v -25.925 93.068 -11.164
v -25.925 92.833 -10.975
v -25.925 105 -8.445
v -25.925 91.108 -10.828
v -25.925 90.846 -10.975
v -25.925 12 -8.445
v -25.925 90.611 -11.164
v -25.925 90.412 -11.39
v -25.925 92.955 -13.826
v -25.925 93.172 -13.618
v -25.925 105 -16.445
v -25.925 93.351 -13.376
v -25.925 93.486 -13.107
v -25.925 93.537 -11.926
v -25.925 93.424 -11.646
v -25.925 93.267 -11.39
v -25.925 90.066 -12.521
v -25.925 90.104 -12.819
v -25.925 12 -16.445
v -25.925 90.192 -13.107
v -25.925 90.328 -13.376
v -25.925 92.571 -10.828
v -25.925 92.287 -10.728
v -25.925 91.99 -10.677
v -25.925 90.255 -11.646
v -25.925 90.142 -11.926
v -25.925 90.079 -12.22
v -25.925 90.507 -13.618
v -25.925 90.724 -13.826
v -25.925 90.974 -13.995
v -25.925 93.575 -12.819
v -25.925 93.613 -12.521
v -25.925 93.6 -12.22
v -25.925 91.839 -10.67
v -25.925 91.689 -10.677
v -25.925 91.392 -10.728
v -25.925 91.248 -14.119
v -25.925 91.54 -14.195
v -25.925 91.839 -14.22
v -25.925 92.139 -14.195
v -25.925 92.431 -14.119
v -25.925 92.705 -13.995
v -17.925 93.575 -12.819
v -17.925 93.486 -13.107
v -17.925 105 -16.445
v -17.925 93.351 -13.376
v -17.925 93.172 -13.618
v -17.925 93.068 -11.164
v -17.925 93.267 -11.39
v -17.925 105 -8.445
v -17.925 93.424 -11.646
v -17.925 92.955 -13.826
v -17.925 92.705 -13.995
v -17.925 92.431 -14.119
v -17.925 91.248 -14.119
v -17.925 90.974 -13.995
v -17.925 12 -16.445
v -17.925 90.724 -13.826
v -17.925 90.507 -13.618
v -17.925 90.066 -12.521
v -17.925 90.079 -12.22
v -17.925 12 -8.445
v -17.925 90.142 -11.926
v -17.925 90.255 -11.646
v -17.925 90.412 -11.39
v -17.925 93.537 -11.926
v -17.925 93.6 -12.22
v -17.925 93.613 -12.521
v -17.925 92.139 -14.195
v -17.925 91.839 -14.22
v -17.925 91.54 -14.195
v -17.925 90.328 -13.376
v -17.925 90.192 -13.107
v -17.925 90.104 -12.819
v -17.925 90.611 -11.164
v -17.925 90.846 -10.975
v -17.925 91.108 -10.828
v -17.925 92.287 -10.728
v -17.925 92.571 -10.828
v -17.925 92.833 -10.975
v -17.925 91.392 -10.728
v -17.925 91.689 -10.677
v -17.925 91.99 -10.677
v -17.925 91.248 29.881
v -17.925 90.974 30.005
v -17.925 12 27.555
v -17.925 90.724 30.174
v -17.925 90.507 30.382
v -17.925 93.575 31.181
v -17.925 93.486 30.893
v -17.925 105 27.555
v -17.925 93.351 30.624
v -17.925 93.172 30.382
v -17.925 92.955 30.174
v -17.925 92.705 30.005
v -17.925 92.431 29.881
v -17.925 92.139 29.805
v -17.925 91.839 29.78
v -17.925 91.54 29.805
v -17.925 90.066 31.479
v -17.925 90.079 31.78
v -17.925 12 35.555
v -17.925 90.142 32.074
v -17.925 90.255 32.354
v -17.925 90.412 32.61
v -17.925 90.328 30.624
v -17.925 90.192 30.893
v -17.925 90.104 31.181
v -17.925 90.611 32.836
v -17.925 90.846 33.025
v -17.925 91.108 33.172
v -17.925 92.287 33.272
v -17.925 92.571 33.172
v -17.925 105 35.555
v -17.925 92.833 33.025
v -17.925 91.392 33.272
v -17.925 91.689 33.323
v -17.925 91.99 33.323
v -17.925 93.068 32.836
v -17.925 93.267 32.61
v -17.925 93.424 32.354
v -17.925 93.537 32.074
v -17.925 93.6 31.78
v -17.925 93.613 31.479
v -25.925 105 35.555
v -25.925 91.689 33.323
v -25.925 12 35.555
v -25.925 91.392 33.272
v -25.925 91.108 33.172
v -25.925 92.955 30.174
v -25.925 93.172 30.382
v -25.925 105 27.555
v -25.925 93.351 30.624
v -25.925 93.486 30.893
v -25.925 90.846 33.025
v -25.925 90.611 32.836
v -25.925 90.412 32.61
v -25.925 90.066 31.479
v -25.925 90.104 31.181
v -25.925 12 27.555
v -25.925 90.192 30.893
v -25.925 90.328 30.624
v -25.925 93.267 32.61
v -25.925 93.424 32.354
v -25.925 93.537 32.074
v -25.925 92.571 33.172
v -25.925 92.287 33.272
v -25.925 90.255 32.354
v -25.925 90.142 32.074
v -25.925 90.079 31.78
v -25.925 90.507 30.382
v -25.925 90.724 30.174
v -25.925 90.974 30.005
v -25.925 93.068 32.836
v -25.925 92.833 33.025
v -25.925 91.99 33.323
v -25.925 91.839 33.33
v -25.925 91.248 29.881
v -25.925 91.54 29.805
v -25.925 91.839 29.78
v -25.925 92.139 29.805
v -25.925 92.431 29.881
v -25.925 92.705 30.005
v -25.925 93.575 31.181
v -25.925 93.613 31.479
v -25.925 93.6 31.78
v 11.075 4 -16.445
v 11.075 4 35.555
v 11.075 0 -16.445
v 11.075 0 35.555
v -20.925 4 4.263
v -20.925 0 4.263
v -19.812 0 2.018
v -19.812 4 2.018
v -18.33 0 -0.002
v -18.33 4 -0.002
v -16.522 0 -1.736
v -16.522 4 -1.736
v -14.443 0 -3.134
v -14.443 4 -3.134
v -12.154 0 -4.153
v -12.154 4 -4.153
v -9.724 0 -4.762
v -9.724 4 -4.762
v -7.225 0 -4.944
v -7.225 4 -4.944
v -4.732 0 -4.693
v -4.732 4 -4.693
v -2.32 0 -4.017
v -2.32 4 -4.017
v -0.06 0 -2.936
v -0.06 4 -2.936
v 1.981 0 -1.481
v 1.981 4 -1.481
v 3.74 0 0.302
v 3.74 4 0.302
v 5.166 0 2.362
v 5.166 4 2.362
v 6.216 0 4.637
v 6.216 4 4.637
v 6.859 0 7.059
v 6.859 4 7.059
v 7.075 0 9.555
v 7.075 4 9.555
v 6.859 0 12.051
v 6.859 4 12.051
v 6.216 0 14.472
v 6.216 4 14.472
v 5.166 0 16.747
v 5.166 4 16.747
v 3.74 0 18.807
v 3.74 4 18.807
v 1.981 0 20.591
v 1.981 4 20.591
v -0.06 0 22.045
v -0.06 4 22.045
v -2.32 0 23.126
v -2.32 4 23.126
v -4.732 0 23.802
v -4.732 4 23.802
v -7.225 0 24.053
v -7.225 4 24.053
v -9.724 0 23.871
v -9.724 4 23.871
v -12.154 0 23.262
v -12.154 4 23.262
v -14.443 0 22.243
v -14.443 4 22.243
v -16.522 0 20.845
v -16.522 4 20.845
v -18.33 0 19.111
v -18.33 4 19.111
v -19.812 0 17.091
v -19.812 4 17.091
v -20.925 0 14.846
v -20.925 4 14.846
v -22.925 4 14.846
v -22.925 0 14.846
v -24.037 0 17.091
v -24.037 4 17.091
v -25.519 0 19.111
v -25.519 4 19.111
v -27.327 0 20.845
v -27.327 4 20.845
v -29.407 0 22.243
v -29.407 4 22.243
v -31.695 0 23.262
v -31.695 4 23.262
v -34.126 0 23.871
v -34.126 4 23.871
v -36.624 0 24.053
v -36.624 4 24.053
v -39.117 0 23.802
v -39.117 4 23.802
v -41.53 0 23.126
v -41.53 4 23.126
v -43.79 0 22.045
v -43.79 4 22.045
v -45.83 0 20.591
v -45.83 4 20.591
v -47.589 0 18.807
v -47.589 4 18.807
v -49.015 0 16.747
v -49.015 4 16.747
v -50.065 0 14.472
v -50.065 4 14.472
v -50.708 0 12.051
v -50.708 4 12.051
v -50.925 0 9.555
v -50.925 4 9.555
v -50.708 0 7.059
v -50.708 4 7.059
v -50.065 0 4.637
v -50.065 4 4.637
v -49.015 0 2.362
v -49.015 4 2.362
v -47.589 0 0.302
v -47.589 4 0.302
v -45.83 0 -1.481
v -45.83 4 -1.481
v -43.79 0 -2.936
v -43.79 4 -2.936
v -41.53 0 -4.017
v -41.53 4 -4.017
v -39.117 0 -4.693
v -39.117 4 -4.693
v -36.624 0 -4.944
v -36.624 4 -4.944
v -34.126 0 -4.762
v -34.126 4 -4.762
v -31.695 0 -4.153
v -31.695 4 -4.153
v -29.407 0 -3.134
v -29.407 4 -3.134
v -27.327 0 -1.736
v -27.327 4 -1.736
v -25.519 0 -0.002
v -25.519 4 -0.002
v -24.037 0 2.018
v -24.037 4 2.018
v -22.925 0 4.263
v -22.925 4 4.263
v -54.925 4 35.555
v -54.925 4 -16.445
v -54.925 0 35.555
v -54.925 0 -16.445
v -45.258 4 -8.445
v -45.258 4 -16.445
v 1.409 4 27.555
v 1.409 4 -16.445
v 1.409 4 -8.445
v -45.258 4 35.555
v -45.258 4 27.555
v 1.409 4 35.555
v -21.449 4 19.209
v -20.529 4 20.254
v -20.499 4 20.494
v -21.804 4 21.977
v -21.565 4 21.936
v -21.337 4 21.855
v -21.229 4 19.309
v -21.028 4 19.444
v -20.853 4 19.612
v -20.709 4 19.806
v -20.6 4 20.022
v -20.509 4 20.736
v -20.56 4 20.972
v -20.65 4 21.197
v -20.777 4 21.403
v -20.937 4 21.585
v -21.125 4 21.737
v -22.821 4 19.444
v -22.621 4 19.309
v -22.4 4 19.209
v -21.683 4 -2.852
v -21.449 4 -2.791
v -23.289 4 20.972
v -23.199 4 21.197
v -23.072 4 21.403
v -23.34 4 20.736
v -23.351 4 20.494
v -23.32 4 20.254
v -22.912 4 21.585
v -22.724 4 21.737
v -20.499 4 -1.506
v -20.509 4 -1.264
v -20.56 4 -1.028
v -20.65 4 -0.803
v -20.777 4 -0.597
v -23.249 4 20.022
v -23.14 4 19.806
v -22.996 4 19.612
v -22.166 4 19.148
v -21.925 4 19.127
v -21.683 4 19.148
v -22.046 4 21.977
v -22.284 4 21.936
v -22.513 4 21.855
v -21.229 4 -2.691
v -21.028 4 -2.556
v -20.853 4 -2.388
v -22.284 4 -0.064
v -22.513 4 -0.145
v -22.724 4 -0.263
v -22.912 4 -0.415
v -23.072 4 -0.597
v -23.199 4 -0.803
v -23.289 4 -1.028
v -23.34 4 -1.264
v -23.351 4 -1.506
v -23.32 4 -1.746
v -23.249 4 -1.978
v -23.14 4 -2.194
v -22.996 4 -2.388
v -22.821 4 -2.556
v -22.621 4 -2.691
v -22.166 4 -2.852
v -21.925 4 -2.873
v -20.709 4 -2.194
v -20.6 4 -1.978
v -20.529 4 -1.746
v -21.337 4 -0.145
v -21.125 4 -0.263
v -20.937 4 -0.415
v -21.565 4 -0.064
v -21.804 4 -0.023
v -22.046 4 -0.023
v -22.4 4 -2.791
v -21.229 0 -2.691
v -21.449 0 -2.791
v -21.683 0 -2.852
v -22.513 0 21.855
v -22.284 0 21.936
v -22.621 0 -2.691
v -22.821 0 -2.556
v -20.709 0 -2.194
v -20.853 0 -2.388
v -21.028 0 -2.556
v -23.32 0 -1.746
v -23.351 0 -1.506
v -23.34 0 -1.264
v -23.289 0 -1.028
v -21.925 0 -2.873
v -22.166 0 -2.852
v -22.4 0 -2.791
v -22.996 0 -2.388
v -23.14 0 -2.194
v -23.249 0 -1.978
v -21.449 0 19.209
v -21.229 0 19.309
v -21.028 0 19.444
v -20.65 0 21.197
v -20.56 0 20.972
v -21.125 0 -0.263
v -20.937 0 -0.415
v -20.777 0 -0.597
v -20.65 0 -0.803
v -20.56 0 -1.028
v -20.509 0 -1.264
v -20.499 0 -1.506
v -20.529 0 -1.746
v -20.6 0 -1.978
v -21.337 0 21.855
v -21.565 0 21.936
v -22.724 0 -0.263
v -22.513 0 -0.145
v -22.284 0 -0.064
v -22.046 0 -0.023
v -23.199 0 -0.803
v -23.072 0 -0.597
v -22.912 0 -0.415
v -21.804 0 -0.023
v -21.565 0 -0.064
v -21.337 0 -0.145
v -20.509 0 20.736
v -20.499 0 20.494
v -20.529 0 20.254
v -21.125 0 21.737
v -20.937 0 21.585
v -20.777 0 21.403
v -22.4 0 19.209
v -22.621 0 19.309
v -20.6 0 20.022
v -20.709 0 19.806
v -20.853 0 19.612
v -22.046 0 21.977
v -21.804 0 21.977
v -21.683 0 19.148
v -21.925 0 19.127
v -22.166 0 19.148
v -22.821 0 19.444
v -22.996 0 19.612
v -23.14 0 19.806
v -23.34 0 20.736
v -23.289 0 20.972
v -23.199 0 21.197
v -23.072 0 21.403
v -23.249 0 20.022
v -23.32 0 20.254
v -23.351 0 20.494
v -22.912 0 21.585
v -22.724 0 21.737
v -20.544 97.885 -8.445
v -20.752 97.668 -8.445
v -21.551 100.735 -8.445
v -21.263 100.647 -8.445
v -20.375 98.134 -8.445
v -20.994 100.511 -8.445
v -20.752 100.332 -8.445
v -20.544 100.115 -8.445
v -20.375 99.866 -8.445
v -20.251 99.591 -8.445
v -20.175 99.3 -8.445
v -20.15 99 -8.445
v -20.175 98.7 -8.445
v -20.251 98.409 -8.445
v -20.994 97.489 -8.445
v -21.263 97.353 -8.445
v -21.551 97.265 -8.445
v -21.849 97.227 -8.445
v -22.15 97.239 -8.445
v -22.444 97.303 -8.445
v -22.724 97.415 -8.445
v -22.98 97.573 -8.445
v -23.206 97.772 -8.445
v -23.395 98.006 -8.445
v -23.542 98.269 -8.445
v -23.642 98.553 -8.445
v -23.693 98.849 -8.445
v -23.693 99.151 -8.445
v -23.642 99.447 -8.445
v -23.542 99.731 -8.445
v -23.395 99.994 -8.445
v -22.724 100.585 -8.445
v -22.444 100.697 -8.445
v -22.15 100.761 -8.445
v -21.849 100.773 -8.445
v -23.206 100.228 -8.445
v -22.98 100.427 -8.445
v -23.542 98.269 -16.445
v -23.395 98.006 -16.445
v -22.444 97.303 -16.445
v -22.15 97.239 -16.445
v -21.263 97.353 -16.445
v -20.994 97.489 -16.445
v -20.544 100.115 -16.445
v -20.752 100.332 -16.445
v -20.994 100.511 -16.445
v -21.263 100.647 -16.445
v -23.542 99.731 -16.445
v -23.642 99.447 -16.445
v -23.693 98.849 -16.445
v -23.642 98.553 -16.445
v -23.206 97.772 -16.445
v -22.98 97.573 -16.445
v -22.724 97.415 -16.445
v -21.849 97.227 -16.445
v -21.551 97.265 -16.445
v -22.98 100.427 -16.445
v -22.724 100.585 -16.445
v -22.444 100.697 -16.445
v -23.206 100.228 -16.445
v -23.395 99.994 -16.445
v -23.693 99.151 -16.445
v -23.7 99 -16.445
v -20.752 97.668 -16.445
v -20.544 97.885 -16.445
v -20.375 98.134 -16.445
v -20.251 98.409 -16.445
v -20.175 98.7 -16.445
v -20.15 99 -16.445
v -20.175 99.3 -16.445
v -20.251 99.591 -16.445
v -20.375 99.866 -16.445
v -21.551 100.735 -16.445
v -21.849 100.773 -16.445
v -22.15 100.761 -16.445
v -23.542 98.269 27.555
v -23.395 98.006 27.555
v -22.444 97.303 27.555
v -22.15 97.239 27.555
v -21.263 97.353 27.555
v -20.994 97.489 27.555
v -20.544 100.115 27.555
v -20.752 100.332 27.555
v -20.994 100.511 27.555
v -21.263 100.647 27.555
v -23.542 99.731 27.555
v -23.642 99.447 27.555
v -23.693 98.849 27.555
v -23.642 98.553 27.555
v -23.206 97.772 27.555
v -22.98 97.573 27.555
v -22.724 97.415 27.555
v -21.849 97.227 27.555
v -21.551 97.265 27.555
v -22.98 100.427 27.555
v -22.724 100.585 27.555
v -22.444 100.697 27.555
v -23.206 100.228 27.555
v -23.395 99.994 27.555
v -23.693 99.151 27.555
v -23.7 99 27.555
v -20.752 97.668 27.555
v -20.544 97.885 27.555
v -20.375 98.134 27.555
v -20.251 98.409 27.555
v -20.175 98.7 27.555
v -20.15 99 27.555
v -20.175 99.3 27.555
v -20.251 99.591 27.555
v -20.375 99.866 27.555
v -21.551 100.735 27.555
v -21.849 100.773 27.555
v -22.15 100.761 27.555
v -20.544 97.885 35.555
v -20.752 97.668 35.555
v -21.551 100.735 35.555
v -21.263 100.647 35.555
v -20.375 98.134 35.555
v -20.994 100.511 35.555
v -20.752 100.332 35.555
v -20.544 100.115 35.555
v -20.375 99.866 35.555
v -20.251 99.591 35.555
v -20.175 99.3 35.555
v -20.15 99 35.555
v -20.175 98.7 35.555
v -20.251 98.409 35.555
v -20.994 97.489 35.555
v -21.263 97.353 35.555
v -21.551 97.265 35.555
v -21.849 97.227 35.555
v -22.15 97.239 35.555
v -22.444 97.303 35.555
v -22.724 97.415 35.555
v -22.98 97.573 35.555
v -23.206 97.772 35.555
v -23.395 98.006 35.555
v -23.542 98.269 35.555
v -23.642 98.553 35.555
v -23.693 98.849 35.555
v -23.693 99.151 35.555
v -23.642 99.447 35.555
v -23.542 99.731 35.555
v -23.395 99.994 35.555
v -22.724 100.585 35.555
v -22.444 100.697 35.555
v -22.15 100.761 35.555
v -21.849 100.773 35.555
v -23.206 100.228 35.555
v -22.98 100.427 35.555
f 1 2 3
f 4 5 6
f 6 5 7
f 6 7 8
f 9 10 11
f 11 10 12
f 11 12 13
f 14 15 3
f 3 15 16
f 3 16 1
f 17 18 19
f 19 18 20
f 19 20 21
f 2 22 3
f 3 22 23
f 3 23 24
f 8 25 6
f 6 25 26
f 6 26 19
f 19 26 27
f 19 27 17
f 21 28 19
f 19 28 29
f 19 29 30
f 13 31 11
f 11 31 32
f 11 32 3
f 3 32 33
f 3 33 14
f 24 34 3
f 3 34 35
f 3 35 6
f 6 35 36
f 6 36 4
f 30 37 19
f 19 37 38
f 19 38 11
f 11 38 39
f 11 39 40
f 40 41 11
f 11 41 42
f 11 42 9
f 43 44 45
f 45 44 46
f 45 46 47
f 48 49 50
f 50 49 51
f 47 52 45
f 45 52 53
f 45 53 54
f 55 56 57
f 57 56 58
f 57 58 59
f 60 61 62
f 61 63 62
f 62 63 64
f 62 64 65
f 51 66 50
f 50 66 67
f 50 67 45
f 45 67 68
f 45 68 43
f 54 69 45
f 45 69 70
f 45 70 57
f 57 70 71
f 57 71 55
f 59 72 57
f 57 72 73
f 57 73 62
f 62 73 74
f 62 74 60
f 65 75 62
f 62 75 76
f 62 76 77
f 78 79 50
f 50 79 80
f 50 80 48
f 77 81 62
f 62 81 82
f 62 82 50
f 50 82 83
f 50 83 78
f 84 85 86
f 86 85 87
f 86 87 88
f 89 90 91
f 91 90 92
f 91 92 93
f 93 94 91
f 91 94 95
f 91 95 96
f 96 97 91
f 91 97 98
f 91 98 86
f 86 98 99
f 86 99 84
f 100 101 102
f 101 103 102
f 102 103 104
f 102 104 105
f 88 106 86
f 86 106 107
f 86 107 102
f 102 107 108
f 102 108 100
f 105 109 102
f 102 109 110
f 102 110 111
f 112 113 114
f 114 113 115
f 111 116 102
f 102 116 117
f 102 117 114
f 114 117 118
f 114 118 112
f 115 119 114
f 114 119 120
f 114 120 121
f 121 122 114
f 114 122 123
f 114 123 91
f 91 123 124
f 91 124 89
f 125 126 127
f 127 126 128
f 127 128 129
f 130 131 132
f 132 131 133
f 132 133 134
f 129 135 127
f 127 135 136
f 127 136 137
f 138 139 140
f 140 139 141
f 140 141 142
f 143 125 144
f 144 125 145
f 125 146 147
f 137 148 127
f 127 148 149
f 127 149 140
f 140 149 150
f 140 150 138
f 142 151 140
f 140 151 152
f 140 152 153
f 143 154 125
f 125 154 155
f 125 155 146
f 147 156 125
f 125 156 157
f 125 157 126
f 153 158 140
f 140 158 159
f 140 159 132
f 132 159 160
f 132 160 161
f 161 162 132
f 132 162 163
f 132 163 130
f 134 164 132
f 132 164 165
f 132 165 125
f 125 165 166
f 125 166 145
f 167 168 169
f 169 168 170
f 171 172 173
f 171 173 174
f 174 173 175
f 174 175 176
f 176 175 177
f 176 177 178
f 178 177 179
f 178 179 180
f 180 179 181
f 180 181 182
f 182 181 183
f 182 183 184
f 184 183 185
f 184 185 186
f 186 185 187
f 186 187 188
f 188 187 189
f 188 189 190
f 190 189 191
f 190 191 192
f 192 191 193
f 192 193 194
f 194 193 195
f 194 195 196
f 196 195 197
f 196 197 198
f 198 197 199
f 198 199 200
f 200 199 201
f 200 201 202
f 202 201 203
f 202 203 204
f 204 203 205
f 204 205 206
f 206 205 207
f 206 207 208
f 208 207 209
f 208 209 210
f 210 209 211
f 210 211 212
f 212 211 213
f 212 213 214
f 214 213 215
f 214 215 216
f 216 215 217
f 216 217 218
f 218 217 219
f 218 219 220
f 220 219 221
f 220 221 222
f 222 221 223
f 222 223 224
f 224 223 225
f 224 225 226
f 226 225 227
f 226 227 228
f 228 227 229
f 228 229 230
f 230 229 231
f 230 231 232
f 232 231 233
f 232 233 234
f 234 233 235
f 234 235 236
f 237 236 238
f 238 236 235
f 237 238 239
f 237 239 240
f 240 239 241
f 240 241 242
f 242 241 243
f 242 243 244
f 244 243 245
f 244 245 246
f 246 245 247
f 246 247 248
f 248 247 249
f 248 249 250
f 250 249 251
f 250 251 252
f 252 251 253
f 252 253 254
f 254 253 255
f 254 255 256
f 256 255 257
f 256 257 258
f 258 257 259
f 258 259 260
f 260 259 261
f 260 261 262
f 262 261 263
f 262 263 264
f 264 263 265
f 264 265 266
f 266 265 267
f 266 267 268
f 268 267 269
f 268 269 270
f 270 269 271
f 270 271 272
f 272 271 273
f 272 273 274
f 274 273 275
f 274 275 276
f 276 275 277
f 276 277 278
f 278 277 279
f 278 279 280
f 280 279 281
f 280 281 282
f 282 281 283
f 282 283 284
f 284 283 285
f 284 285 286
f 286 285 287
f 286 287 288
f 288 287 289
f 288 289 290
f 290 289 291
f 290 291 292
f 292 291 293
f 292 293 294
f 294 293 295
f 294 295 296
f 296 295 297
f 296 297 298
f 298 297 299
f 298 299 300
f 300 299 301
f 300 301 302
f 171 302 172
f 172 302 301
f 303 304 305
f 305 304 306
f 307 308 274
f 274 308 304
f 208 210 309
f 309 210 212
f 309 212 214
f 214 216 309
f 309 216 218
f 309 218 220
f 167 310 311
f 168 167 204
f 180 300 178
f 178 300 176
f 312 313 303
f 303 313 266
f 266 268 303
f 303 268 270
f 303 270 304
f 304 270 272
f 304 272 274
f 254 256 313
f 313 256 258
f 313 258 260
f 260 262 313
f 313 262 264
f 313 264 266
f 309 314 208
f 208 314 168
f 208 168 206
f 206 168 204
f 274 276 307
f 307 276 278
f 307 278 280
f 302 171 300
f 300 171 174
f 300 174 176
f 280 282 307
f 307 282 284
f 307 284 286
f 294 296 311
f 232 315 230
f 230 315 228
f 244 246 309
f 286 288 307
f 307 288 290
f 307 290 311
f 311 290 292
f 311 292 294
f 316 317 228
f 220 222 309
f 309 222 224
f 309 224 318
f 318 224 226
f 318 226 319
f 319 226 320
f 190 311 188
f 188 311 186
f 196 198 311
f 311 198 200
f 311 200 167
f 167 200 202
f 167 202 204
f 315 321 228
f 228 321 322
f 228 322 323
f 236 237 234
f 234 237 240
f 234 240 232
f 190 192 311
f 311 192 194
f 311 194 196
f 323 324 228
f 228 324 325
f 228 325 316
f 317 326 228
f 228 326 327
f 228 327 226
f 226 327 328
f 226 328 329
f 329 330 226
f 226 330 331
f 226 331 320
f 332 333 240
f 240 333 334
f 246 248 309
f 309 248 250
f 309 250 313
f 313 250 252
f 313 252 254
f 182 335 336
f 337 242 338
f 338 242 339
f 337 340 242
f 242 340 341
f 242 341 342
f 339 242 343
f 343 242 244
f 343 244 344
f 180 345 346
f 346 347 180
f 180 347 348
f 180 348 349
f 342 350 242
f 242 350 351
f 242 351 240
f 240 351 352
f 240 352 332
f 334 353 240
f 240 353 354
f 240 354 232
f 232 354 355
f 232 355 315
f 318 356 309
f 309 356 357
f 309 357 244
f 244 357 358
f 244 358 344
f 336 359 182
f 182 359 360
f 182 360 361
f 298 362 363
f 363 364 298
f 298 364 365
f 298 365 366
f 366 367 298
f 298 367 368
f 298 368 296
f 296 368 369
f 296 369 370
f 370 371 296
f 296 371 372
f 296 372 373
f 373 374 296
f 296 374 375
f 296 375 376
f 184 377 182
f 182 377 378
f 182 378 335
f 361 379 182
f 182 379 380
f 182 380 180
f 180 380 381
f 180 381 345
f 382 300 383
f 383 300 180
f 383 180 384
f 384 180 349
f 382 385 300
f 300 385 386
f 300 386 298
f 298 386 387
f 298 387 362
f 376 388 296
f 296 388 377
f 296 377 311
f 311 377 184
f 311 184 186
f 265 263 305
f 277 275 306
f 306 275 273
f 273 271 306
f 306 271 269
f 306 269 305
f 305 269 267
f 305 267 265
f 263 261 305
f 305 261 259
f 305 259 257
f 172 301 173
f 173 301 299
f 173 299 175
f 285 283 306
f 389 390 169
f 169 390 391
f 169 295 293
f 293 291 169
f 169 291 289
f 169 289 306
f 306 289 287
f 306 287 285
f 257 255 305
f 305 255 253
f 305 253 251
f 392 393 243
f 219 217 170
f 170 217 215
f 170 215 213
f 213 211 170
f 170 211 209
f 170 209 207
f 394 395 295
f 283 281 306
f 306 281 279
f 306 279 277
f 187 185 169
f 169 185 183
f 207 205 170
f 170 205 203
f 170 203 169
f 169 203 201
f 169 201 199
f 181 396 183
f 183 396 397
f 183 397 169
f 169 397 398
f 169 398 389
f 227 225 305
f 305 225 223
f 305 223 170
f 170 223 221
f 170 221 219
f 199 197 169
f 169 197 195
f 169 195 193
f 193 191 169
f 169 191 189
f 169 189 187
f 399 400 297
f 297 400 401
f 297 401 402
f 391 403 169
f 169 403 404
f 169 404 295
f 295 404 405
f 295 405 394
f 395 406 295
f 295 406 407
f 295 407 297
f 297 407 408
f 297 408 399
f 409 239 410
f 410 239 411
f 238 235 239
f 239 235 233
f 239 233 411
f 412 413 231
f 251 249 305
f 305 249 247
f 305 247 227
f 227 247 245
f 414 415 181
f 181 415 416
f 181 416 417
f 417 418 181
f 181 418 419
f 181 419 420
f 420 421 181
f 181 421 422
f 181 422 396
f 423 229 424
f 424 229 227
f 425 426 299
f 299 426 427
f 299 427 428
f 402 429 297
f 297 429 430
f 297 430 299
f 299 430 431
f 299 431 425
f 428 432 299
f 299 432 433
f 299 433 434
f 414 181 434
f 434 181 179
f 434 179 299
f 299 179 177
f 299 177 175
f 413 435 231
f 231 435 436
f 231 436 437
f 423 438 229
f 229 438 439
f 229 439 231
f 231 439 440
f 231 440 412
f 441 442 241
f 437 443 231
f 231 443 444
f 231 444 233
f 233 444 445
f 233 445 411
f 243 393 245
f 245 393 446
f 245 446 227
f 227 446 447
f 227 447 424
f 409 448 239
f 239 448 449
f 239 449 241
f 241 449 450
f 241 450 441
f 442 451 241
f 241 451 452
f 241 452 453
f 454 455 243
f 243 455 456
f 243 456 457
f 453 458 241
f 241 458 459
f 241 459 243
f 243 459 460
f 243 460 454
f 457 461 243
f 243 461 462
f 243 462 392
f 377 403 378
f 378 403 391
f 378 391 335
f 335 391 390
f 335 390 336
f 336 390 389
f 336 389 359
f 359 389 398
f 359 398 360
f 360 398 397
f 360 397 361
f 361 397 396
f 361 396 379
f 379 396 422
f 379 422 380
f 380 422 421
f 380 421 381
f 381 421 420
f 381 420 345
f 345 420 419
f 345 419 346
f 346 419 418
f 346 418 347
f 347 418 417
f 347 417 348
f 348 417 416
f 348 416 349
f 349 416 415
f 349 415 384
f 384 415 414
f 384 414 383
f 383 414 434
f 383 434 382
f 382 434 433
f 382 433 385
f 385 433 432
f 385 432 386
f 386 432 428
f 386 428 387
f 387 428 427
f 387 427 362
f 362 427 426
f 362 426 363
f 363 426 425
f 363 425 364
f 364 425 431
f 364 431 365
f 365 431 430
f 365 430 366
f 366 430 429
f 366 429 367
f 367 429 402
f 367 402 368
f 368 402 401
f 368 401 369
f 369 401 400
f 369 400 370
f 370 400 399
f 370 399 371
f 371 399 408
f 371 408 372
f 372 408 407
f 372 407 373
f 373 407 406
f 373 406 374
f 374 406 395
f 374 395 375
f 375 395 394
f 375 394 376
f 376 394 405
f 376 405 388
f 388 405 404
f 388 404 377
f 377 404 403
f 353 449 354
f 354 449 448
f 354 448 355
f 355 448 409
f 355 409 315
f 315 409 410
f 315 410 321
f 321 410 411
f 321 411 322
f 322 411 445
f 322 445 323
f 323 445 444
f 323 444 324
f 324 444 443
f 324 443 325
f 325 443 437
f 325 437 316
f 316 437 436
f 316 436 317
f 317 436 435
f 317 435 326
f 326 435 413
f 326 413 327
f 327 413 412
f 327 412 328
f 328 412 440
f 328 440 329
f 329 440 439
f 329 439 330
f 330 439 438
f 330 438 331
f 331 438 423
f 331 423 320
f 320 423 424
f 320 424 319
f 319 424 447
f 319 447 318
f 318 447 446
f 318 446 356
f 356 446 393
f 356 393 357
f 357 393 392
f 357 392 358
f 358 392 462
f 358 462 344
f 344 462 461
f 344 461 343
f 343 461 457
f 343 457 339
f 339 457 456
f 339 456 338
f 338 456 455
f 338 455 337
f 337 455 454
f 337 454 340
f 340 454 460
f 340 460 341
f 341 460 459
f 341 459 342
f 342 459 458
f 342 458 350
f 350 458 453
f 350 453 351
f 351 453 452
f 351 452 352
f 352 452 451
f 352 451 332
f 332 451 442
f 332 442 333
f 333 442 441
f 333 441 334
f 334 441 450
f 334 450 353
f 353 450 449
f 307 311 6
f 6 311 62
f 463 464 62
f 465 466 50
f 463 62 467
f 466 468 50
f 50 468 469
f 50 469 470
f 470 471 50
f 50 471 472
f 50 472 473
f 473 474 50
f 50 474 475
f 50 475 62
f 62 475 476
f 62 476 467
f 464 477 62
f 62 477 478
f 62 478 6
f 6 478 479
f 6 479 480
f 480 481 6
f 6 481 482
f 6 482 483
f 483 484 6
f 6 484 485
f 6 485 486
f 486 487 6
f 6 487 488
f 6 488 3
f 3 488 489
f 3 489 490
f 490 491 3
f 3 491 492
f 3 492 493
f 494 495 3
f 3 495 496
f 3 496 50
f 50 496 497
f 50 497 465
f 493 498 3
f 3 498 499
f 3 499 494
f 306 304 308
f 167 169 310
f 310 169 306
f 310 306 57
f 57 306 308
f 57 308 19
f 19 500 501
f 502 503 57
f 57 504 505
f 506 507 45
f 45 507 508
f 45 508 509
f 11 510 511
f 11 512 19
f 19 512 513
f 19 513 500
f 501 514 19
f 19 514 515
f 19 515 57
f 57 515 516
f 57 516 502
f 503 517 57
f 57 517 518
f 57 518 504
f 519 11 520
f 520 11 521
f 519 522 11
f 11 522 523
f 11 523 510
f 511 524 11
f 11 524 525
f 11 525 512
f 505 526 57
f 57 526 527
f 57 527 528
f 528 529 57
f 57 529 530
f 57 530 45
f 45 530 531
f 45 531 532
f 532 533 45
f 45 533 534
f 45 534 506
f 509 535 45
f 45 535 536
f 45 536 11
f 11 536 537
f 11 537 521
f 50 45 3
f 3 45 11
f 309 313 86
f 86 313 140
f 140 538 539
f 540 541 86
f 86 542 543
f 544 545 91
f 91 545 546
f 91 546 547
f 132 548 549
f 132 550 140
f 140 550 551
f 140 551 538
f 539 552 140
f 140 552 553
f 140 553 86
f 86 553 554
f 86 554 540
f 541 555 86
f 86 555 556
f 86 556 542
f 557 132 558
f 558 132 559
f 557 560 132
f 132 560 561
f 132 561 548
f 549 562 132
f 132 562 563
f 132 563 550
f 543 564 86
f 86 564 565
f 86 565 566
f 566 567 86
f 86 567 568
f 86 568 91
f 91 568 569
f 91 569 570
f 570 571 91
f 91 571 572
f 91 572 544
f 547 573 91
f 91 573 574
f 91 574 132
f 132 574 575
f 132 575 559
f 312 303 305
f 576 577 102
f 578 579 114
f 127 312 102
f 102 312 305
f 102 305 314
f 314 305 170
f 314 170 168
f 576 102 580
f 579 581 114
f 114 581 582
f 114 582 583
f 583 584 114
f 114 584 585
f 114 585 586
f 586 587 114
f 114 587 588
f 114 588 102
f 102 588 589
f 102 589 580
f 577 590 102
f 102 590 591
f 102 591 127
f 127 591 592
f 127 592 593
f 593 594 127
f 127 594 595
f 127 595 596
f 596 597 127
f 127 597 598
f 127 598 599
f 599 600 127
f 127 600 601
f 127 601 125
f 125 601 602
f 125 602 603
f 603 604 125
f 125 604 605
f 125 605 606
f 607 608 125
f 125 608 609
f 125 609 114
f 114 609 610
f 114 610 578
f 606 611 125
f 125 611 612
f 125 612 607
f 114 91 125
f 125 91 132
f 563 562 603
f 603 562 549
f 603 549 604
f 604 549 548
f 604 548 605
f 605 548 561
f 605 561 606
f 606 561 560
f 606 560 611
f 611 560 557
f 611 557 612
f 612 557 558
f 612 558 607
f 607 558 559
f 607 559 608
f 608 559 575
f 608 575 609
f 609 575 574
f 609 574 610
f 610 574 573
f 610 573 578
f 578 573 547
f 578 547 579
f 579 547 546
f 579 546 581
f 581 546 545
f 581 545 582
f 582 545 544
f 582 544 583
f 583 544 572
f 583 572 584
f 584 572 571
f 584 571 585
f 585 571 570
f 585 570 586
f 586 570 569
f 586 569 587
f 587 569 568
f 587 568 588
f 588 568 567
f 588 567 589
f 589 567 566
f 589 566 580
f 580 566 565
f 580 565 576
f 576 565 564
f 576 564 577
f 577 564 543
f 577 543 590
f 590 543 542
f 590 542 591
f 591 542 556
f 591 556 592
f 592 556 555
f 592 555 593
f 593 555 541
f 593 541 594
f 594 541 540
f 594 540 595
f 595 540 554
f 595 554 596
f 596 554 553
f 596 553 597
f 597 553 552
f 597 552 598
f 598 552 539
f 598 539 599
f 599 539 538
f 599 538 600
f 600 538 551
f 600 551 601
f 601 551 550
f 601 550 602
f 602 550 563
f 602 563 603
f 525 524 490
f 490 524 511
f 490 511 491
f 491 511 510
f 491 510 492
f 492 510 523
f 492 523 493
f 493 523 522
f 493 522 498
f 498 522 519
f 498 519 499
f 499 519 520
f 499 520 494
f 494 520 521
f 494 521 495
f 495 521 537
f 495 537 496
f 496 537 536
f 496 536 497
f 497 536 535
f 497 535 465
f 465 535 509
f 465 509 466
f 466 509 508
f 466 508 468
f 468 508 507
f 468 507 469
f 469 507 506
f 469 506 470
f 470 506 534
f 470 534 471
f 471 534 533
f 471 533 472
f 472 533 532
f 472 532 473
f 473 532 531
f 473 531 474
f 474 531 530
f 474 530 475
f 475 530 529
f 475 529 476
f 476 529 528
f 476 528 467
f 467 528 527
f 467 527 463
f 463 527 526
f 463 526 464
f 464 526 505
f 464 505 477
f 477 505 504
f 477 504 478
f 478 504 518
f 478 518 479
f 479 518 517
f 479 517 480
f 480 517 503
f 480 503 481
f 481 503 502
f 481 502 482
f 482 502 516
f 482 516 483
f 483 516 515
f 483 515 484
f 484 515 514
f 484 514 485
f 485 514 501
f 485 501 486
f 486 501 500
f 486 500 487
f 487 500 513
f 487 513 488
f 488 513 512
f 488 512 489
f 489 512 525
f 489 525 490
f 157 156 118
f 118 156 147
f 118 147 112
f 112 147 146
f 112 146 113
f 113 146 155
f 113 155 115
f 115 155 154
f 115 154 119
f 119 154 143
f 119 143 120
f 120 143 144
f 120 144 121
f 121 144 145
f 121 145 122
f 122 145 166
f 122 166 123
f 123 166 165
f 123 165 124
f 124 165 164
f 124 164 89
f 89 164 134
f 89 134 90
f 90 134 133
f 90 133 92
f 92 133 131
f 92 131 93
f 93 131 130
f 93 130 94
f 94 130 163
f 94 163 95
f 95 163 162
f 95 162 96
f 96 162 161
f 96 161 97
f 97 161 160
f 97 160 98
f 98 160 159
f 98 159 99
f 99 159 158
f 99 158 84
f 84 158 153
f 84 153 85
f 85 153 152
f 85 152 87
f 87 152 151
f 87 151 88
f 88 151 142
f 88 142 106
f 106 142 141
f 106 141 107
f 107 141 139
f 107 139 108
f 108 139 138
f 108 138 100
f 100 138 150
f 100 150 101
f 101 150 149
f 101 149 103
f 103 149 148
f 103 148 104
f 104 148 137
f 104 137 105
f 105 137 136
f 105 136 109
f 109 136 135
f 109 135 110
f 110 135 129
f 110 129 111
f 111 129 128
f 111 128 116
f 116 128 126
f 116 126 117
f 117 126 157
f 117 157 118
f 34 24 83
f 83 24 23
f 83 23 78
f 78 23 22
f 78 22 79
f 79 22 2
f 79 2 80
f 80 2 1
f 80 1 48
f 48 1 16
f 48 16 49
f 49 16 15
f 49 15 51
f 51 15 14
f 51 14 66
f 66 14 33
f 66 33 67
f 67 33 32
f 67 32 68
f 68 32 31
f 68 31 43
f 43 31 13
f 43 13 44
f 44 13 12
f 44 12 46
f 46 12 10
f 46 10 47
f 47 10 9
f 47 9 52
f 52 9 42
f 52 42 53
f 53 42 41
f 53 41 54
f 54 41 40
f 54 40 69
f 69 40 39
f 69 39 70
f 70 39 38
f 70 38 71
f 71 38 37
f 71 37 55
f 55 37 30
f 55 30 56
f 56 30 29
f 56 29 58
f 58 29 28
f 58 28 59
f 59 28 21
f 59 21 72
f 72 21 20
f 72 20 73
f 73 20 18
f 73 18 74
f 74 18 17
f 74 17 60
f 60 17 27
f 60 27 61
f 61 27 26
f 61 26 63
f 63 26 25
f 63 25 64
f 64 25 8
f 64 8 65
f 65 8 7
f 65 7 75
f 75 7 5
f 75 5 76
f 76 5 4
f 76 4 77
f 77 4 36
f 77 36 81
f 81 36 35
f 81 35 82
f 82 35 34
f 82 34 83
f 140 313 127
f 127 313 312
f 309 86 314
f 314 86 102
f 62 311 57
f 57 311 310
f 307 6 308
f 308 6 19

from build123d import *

# Parameters (mm, degrees)
BOSS_EXTRUDE1_DEPTH = 4
SKETCH3_R           = 1.427241696
CUT_EXTRUDE1_DEPTH  = 62.578957395
SKETCH4_W           = 8
SKETCH4_H           = 8
BOSS_EXTRUDE3_DEPTH = 105
CUT_EXTRUDE2_REACH  = 131.405
SKETCH5_R           = 1.775
SKETCH6_R           = 1.775
CUT_EXTRUDE3_DEPTH  = 117.867981735
BOSS_EXTRUDE4_DEPTH = 8
BOSS_EXTRUDE5_DEPTH = 8


with BuildPart() as part:
    # Sketch1 → Boss-Extrude1 (new body)
    with BuildSketch(Plane(origin=(0, 0, 0), x_dir=(1, 0, 0), z_dir=(0, 1, 0))):
        Polygon((-36.424634211, -27.554537751), (-7.424634211, -27.554537751), (11.075365789, -27.554537751), (11.075365789, 8.445462249), (-7.424634211, 8.445462249), (-36.424634211, 8.445462249), (-54.924634211, 8.445462249), (-54.924634211, -27.554537751), align=None)
        with BuildLine():
            Line((-22.924634211, -4.263035129), (-20.924634211, -4.263035129))
            ThreePointArc((-20.924634211, -4.263035129), (7.075365789, -9.554537751), (-20.924634211, -14.846040373))
            Line((-20.924634211, -14.846040373), (-22.924634211, -14.846040373))
            ThreePointArc((-22.924634211, -14.846040373), (-50.924634211, -9.554537751), (-22.924634211, -4.263035129))
        make_face(mode=Mode.SUBTRACT)
    extrude(amount=BOSS_EXTRUDE1_DEPTH)

    # Sketch3 → Cut-Extrude1 (cut, through all)
    with BuildSketch(Plane.XZ):
        with Locations(Location((-21.924634211, -1.445462249, 0), (0, 0, 270))):
            Circle(SKETCH3_R)
        with Locations(Location((-21.924634211, 20.554537751, 0), (0, 0, 270))):
            Circle(SKETCH3_R)
    extrude(amount=-CUT_EXTRUDE1_DEPTH, mode=Mode.SUBTRACT)

    # Sketch4 → Boss-Extrude3 (add)
    with BuildSketch(Plane.XZ):
        with Locations((-21.924634211, -12.445462249)):
            Rectangle(SKETCH4_W, SKETCH4_H)
        with Locations((-21.924634211, 31.554537751)):
            Rectangle(SKETCH4_W, SKETCH4_H)
    extrude(amount=-BOSS_EXTRUDE3_DEPTH)

    # Cut-Extrude2: up to this face of the body (flat: up to its plane)
    cut_extrude2_end = Plane(part.part.faces().sort_by_distance((-21.924634211, 52.5, -16.445462249))[0])
    # Sketch5 → Cut-Extrude2 (cut, up to the picked face)
    with BuildSketch(Plane.XY.offset(35.554537751), mode=Mode.PRIVATE) as cut_extrude2_sk1:
        with Locations((-21.924634211, 99)):
            Circle(SKETCH5_R)
    cut_extrude2_tool1 = split(extrude(cut_extrude2_sk1.sketch, amount=-CUT_EXTRUDE2_REACH, mode=Mode.PRIVATE), bisect_by=cut_extrude2_end, keep=Keep.BOTH, mode=Mode.PRIVATE)
    add(cut_extrude2_tool1.solids().sort_by(Axis((-21.924634, 99, 35.554538), (0, 0, -1)))[0], mode=Mode.SUBTRACT)

    # Sketch6 → Cut-Extrude3 (cut, through all)
    with BuildSketch(Plane(origin=(-17.924634211, 0, 0), x_dir=(0, 0, -1), z_dir=(1, 0, 0))):
        with Locations((-31.554537751, 91.839494298)):
            Circle(SKETCH6_R)
        with Locations((12.445462249, 91.839494298)):
            Circle(SKETCH6_R)
    extrude(amount=-CUT_EXTRUDE3_DEPTH, mode=Mode.SUBTRACT)

    # Sketch7 → Boss-Extrude4 (add)
    with BuildSketch(Plane.XY.offset(27.554537751)):
        Polygon((-45.257967544, 4), (-25.924634211, 12), (-25.924634211, 0), (-54.924634211, 0), (-54.924634211, 4), align=None)
        Polygon((-17.924634211, 0), (-17.924634211, 12), (1.408699123, 4), (11.075365789, 4), (11.075365789, 0), align=None)
    extrude(amount=BOSS_EXTRUDE4_DEPTH)

    # Sketch8 → Boss-Extrude5 (add)
    with BuildSketch(Plane(origin=(0, 0, -8.445462249), x_dir=(-1, 0, 0), z_dir=(0, 0, -1))):
        Polygon((-11.075365789, 0), (-11.075365789, 4), (-1.408699123, 4), (17.924634211, 12), (17.924634211, 0), align=None)
        Polygon((25.924634211, 12), (45.257967544, 4), (54.924634211, 4), (54.924634211, 0), (25.924634211, 0), align=None)
    extrude(amount=BOSS_EXTRUDE5_DEPTH)


solid = part.part
